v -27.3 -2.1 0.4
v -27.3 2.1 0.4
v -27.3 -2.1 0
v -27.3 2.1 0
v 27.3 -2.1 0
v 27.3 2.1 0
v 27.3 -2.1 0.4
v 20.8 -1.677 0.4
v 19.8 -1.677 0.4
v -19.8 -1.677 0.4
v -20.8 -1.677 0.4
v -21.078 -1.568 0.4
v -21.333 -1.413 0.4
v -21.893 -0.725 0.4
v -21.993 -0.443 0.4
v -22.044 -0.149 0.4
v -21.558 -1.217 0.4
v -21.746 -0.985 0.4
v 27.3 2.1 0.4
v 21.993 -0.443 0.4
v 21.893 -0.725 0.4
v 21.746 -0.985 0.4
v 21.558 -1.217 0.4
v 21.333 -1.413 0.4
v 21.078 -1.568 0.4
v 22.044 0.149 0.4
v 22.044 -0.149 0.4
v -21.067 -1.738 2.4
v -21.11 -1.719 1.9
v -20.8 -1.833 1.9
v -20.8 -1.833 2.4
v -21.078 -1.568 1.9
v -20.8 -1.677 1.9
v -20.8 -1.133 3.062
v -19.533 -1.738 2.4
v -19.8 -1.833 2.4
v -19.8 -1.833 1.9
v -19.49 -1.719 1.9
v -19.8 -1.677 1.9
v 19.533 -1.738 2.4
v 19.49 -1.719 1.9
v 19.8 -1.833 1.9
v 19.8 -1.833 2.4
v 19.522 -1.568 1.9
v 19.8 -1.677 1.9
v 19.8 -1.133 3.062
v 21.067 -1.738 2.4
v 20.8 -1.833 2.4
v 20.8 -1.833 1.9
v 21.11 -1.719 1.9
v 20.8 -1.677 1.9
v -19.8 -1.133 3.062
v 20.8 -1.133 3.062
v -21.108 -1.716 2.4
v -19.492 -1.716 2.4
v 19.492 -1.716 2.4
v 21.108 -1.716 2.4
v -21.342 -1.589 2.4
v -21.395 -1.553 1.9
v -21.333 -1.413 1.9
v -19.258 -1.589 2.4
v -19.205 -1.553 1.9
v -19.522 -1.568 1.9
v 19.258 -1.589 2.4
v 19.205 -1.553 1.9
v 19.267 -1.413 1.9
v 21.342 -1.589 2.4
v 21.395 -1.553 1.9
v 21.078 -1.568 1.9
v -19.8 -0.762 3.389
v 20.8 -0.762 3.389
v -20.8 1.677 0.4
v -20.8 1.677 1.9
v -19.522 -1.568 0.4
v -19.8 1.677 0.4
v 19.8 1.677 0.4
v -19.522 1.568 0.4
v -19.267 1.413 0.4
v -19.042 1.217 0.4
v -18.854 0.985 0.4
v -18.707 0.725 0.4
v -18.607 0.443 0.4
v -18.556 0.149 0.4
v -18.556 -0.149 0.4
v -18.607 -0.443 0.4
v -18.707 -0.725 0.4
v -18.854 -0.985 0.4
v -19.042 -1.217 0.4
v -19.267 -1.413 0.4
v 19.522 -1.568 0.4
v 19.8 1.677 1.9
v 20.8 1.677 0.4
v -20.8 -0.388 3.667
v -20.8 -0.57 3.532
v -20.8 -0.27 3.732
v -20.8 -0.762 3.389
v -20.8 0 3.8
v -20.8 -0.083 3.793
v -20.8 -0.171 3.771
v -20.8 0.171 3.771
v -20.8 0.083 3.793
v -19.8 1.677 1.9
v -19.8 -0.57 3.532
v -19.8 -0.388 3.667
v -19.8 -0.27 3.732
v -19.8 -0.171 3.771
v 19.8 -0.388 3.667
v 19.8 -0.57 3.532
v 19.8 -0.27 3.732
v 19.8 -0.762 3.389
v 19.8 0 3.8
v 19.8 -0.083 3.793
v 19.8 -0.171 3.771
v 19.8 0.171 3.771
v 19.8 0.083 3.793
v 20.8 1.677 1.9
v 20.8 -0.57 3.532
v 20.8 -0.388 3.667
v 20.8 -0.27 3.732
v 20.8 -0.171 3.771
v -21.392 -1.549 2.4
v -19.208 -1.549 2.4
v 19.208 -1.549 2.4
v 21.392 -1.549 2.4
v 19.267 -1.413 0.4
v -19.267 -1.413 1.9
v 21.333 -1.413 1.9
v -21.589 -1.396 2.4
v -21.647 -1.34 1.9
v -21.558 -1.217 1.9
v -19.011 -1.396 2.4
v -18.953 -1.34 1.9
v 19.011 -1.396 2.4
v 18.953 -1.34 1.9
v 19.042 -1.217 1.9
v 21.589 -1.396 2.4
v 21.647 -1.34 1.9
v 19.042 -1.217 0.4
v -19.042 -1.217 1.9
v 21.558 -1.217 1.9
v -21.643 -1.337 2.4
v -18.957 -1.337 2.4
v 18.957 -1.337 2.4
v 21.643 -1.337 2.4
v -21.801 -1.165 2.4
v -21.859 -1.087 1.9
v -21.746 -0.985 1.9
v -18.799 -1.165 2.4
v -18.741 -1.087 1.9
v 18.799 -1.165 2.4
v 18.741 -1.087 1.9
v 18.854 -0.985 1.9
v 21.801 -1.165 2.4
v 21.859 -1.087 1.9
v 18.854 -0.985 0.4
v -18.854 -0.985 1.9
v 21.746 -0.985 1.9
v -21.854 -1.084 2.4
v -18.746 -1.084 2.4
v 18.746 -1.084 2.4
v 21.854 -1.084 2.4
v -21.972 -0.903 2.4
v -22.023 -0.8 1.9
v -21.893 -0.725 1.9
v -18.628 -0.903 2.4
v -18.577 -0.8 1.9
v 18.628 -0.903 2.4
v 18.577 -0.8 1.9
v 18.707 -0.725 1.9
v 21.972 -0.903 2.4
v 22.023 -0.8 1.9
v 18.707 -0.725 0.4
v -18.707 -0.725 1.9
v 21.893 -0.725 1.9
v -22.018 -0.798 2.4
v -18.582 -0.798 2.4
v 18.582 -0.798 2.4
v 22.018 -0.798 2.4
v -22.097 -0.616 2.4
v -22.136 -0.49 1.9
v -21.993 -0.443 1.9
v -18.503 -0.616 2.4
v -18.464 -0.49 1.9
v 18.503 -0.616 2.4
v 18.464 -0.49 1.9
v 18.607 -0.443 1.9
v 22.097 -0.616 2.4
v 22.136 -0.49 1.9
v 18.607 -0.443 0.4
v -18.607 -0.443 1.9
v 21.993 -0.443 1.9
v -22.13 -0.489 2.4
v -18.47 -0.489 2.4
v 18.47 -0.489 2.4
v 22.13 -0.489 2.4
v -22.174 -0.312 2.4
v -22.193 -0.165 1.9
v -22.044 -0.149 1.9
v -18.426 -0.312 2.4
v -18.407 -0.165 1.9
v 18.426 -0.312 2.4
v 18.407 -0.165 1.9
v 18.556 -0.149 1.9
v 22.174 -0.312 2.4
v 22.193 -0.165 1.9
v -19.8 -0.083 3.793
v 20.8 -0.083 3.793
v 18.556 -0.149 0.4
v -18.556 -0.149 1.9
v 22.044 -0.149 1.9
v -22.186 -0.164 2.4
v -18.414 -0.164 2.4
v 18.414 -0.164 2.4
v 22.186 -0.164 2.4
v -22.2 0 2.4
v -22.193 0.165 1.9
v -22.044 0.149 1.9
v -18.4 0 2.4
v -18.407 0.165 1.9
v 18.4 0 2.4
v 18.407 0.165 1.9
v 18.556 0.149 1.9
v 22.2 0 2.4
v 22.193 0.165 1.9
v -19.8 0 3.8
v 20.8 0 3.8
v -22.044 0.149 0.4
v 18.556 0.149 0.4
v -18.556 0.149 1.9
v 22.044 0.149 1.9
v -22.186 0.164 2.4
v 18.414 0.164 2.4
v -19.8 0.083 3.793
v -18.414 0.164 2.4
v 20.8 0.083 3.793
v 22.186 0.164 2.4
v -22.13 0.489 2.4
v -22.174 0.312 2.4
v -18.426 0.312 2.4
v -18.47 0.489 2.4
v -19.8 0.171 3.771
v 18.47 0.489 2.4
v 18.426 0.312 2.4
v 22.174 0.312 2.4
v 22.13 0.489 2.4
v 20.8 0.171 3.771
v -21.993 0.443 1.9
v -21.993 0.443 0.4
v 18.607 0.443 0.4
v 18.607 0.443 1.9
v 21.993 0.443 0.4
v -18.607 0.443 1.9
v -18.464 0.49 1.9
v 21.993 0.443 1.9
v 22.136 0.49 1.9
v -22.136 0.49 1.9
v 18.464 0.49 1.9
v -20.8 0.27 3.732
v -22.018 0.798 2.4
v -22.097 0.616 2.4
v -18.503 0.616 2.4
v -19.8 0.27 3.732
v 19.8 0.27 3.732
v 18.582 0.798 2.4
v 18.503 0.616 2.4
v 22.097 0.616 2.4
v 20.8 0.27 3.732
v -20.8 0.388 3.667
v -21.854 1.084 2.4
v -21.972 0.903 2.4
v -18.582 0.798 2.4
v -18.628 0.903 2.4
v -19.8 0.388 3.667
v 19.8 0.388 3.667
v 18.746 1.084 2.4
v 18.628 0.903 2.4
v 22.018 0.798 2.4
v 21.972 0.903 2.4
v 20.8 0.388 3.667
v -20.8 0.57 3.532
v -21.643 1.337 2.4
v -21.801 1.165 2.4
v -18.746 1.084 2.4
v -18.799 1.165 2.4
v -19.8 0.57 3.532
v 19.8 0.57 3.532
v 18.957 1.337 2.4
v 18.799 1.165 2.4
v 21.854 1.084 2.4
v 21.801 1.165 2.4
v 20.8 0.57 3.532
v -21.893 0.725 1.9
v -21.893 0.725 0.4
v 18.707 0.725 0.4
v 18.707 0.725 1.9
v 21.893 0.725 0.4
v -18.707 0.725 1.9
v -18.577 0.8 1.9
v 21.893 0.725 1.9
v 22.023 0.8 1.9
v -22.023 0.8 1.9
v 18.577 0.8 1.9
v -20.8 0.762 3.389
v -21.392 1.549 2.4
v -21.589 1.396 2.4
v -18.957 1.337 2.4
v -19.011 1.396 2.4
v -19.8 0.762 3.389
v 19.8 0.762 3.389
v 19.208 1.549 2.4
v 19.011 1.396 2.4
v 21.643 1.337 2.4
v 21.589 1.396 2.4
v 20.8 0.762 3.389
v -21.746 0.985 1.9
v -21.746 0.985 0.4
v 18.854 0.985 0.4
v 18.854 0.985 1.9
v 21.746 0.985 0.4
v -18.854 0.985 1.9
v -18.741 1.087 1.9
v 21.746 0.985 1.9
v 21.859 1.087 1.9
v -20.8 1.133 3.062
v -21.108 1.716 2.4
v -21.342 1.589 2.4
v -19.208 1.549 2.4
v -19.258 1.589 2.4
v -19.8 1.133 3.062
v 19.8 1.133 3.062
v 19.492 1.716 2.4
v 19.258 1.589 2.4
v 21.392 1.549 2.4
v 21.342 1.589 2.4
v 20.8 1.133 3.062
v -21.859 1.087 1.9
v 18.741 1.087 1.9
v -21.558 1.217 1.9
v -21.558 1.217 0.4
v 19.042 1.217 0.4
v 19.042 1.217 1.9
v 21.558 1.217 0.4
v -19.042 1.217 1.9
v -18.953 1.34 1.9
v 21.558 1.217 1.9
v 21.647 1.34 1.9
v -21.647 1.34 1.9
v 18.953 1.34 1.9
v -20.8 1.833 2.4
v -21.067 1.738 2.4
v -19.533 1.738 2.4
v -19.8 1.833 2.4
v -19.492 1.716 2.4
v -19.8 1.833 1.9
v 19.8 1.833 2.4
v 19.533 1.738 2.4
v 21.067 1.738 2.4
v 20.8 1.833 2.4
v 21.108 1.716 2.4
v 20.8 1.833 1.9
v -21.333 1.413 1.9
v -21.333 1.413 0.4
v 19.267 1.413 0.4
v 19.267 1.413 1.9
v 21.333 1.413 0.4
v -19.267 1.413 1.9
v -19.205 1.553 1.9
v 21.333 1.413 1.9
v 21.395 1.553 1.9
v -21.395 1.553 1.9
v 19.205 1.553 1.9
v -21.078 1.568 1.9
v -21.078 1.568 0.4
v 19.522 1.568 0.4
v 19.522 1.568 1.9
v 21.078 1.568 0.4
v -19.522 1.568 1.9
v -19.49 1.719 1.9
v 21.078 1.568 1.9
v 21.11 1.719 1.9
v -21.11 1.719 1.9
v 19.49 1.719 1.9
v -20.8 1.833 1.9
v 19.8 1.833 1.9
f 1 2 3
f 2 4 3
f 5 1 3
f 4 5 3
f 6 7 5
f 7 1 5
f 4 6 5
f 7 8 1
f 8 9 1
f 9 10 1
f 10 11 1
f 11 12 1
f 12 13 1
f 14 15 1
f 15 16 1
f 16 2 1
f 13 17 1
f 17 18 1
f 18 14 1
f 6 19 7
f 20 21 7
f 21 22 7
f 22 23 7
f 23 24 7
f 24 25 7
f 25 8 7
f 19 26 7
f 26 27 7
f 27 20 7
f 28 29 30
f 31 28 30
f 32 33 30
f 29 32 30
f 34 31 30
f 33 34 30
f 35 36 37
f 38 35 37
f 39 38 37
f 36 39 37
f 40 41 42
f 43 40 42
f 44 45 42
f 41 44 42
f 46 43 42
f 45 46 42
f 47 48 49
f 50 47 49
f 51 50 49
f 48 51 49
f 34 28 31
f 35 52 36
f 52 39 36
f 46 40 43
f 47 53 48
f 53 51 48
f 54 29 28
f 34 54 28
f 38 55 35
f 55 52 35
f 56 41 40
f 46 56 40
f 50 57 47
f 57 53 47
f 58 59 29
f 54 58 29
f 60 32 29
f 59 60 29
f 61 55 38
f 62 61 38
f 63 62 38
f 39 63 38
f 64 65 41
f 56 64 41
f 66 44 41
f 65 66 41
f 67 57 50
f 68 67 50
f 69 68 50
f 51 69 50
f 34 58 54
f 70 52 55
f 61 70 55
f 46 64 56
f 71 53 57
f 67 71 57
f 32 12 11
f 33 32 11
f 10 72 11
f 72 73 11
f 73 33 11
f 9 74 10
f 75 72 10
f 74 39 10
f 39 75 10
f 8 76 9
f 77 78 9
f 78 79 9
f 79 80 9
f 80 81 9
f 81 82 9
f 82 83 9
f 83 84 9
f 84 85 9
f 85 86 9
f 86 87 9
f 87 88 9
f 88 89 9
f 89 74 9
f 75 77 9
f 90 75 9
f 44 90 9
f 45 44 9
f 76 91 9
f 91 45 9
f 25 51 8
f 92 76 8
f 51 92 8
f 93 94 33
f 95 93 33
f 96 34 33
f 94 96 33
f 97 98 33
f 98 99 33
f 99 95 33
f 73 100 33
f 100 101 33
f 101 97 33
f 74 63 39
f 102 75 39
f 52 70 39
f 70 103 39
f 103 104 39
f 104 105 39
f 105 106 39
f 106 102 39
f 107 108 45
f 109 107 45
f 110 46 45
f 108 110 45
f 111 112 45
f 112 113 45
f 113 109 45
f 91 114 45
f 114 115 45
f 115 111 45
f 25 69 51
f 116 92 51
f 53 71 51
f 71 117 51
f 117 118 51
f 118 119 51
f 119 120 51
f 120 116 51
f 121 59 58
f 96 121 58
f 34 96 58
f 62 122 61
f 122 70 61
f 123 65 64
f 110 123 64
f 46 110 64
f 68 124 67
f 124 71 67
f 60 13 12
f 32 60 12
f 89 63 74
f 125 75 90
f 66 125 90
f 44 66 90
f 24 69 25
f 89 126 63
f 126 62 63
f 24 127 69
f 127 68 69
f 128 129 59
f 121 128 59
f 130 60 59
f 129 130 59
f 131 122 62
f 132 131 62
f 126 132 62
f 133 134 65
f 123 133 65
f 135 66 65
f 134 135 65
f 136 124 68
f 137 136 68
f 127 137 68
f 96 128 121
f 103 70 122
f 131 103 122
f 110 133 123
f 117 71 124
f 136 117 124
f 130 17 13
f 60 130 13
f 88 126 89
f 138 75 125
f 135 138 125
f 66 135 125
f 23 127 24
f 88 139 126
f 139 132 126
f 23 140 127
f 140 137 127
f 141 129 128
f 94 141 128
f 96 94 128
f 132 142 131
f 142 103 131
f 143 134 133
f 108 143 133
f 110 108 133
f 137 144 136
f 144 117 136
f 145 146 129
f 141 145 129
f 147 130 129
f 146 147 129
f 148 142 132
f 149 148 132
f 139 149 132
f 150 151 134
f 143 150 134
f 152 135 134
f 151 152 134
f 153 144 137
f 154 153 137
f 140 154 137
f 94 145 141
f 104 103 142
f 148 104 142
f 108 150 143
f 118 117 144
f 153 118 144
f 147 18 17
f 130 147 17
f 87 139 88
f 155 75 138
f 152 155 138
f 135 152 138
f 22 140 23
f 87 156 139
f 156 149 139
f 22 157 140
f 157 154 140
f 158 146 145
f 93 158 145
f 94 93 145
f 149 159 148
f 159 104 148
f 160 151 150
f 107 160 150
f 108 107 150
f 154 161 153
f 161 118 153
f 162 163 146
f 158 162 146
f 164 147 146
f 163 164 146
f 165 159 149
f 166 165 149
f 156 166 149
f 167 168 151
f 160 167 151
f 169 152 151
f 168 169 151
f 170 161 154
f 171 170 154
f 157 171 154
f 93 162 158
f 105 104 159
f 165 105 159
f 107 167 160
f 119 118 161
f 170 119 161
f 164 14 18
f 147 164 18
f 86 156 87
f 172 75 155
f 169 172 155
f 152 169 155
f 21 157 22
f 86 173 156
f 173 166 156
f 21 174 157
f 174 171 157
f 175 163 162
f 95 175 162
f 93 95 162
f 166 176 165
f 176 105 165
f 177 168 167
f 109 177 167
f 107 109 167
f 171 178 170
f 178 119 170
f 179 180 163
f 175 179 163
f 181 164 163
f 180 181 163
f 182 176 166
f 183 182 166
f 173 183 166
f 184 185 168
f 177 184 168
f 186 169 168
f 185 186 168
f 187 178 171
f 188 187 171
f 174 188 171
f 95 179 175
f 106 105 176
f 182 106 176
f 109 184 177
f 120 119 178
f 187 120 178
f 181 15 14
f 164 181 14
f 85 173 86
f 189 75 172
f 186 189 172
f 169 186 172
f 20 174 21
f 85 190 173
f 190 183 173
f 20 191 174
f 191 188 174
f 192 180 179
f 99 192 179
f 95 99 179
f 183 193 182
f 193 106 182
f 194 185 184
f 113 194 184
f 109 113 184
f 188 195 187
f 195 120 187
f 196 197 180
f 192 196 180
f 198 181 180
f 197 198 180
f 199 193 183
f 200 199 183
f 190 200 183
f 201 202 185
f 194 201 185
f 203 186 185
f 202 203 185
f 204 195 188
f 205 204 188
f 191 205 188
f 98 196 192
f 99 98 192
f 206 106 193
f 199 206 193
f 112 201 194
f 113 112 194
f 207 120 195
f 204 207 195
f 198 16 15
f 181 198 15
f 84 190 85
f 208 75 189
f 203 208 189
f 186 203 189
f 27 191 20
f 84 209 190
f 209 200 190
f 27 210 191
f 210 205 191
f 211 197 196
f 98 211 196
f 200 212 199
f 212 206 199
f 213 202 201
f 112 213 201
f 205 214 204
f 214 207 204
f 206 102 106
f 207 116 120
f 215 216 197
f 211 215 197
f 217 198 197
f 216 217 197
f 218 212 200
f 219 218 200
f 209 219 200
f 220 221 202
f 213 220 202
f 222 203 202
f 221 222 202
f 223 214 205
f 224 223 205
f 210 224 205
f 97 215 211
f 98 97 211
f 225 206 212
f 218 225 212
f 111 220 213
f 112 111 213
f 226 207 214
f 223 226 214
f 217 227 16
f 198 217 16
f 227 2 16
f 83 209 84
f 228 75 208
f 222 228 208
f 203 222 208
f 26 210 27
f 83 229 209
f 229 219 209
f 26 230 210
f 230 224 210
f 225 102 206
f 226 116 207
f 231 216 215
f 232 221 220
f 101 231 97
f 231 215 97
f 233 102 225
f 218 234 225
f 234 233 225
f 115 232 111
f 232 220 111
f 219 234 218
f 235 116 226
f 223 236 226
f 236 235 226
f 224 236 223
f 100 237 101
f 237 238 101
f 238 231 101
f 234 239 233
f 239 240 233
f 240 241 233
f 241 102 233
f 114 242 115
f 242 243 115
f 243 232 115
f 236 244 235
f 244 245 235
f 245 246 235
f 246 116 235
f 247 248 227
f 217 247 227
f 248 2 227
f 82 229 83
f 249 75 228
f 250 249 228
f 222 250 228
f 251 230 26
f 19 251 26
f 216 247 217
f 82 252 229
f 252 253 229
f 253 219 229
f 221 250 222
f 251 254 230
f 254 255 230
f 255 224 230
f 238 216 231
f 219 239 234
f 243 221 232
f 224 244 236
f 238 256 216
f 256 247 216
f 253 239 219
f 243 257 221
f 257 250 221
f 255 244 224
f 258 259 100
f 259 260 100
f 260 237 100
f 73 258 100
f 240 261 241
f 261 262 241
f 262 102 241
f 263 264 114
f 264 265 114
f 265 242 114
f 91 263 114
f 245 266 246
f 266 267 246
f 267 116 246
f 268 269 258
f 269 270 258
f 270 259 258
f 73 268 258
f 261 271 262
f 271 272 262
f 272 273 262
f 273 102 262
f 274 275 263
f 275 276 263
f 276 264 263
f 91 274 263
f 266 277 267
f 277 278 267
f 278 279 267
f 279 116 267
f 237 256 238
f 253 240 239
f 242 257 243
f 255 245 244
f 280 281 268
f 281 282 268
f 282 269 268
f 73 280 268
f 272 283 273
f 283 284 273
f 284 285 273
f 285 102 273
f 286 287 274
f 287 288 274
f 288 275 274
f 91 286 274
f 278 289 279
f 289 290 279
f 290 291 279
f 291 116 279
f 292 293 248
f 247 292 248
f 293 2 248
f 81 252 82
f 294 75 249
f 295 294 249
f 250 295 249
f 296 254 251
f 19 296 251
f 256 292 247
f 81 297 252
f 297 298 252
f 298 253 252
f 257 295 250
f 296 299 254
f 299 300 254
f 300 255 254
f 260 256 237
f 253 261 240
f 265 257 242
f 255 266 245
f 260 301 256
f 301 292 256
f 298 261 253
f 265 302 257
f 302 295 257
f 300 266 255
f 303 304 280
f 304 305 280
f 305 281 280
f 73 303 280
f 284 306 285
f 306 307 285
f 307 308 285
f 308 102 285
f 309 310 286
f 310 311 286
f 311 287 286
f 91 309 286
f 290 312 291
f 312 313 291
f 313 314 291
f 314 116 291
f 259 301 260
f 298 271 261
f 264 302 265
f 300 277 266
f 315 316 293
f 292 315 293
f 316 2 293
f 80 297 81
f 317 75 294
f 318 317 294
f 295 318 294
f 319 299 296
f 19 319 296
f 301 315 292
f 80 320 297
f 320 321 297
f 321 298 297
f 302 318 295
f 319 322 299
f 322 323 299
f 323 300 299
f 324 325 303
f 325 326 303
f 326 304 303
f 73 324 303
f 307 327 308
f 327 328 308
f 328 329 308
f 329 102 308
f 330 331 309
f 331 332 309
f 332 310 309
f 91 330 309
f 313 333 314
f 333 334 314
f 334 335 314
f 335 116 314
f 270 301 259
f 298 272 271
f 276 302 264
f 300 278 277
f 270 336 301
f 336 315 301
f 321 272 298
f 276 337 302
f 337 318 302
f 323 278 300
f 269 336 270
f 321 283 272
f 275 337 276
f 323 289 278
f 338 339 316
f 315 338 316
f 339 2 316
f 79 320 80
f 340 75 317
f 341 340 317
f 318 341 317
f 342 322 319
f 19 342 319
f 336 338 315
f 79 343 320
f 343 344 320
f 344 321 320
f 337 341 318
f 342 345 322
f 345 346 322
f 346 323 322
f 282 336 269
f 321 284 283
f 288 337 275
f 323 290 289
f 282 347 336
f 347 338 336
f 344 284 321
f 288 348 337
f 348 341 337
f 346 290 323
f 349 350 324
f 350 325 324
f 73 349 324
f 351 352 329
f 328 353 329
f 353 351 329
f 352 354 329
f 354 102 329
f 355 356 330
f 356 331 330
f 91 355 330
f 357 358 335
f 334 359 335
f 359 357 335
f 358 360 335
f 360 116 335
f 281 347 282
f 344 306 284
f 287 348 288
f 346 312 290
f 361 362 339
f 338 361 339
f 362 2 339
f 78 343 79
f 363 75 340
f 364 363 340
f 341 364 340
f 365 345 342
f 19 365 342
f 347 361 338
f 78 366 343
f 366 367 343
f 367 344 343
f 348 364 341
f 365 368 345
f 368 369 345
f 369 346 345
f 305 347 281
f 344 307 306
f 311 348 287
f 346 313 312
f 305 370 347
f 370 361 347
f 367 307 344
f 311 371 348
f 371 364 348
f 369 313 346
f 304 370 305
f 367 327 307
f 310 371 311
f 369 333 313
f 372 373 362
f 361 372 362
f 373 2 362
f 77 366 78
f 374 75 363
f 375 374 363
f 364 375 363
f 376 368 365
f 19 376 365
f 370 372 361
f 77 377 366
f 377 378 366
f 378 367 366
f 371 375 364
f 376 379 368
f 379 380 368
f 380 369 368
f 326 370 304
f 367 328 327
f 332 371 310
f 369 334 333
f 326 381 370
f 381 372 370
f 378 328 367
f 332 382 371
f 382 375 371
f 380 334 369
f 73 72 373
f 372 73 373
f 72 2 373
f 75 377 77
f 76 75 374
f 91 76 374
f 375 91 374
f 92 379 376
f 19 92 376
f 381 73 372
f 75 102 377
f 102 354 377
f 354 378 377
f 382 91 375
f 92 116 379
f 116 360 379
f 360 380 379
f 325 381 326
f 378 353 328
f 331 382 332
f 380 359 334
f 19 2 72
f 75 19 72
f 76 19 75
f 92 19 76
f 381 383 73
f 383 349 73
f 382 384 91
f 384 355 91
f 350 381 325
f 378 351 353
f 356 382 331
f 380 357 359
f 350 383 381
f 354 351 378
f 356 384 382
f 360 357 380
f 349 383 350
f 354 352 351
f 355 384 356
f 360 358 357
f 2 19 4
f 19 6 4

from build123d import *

# Parameters (mm, degrees)
SKICA2_W                 = 54.6
SKICA2_H                 = 4.2
P_IDAT_VYSUNUT_M2_DEPTH  = 0.4
SKICA3_R                 = 1.75
P_IDAT_VYSUNUT_M3_DEPTH  = 1.5
SKICA5_R                 = 1.9
P_IDAT_VYSUNUT_M5_DEPTH  = 2
ZKOSEN_2_SIZE            = 1.5
SKICA7_W                 = 1
SKICA7_H                 = 5
ODEBRAT_VYSUNUT_M1_DEPTH = 3.5


with BuildPart() as part:
    # Skica2 → Přidat vysunutím2 (new body)
    with BuildSketch(Plane.XY):
        Rectangle(SKICA2_W, SKICA2_H)
    extrude(amount=P_IDAT_VYSUNUT_M2_DEPTH)

    # Skica3 → Přidat vysunutím3 (add)
    with BuildSketch(Plane.XY.offset(0.4)):
        with Locations((-20.3, 0)):
            Circle(SKICA3_R)
        with Locations((20.3, 0)):
            Circle(SKICA3_R)
    extrude(amount=P_IDAT_VYSUNUT_M3_DEPTH)

    # Skica5 → Přidat vysunutím5 (add)
    with BuildSketch(Plane.XY.offset(1.9)):
        with Locations((-20.3, 0)):
            Circle(SKICA5_R)
        with Locations((20.3, 0)):
            Circle(SKICA5_R)
    extrude(amount=P_IDAT_VYSUNUT_M5_DEPTH)

    # Zkosení2
    zkosen_2_edges = [part.edges().sort_by_distance(p)[0] for p in [
        (-22.2, 0, 3.9),
        (18.4, 0, 3.9),
    ]]
    chamfer(zkosen_2_edges, length=ZKOSEN_2_SIZE)

    # Skica7 → Odebrat vysunutím1 (cut)
    with BuildSketch(Plane.XY.offset(3.9)):
        with Locations((-20.3, 0)):
            Rectangle(SKICA7_W, SKICA7_H)
        with Locations((20.3, 0)):
            Rectangle(SKICA7_W, SKICA7_H)
    extrude(amount=-ODEBRAT_VYSUNUT_M1_DEPTH, mode=Mode.SUBTRACT)


solid = part.part
